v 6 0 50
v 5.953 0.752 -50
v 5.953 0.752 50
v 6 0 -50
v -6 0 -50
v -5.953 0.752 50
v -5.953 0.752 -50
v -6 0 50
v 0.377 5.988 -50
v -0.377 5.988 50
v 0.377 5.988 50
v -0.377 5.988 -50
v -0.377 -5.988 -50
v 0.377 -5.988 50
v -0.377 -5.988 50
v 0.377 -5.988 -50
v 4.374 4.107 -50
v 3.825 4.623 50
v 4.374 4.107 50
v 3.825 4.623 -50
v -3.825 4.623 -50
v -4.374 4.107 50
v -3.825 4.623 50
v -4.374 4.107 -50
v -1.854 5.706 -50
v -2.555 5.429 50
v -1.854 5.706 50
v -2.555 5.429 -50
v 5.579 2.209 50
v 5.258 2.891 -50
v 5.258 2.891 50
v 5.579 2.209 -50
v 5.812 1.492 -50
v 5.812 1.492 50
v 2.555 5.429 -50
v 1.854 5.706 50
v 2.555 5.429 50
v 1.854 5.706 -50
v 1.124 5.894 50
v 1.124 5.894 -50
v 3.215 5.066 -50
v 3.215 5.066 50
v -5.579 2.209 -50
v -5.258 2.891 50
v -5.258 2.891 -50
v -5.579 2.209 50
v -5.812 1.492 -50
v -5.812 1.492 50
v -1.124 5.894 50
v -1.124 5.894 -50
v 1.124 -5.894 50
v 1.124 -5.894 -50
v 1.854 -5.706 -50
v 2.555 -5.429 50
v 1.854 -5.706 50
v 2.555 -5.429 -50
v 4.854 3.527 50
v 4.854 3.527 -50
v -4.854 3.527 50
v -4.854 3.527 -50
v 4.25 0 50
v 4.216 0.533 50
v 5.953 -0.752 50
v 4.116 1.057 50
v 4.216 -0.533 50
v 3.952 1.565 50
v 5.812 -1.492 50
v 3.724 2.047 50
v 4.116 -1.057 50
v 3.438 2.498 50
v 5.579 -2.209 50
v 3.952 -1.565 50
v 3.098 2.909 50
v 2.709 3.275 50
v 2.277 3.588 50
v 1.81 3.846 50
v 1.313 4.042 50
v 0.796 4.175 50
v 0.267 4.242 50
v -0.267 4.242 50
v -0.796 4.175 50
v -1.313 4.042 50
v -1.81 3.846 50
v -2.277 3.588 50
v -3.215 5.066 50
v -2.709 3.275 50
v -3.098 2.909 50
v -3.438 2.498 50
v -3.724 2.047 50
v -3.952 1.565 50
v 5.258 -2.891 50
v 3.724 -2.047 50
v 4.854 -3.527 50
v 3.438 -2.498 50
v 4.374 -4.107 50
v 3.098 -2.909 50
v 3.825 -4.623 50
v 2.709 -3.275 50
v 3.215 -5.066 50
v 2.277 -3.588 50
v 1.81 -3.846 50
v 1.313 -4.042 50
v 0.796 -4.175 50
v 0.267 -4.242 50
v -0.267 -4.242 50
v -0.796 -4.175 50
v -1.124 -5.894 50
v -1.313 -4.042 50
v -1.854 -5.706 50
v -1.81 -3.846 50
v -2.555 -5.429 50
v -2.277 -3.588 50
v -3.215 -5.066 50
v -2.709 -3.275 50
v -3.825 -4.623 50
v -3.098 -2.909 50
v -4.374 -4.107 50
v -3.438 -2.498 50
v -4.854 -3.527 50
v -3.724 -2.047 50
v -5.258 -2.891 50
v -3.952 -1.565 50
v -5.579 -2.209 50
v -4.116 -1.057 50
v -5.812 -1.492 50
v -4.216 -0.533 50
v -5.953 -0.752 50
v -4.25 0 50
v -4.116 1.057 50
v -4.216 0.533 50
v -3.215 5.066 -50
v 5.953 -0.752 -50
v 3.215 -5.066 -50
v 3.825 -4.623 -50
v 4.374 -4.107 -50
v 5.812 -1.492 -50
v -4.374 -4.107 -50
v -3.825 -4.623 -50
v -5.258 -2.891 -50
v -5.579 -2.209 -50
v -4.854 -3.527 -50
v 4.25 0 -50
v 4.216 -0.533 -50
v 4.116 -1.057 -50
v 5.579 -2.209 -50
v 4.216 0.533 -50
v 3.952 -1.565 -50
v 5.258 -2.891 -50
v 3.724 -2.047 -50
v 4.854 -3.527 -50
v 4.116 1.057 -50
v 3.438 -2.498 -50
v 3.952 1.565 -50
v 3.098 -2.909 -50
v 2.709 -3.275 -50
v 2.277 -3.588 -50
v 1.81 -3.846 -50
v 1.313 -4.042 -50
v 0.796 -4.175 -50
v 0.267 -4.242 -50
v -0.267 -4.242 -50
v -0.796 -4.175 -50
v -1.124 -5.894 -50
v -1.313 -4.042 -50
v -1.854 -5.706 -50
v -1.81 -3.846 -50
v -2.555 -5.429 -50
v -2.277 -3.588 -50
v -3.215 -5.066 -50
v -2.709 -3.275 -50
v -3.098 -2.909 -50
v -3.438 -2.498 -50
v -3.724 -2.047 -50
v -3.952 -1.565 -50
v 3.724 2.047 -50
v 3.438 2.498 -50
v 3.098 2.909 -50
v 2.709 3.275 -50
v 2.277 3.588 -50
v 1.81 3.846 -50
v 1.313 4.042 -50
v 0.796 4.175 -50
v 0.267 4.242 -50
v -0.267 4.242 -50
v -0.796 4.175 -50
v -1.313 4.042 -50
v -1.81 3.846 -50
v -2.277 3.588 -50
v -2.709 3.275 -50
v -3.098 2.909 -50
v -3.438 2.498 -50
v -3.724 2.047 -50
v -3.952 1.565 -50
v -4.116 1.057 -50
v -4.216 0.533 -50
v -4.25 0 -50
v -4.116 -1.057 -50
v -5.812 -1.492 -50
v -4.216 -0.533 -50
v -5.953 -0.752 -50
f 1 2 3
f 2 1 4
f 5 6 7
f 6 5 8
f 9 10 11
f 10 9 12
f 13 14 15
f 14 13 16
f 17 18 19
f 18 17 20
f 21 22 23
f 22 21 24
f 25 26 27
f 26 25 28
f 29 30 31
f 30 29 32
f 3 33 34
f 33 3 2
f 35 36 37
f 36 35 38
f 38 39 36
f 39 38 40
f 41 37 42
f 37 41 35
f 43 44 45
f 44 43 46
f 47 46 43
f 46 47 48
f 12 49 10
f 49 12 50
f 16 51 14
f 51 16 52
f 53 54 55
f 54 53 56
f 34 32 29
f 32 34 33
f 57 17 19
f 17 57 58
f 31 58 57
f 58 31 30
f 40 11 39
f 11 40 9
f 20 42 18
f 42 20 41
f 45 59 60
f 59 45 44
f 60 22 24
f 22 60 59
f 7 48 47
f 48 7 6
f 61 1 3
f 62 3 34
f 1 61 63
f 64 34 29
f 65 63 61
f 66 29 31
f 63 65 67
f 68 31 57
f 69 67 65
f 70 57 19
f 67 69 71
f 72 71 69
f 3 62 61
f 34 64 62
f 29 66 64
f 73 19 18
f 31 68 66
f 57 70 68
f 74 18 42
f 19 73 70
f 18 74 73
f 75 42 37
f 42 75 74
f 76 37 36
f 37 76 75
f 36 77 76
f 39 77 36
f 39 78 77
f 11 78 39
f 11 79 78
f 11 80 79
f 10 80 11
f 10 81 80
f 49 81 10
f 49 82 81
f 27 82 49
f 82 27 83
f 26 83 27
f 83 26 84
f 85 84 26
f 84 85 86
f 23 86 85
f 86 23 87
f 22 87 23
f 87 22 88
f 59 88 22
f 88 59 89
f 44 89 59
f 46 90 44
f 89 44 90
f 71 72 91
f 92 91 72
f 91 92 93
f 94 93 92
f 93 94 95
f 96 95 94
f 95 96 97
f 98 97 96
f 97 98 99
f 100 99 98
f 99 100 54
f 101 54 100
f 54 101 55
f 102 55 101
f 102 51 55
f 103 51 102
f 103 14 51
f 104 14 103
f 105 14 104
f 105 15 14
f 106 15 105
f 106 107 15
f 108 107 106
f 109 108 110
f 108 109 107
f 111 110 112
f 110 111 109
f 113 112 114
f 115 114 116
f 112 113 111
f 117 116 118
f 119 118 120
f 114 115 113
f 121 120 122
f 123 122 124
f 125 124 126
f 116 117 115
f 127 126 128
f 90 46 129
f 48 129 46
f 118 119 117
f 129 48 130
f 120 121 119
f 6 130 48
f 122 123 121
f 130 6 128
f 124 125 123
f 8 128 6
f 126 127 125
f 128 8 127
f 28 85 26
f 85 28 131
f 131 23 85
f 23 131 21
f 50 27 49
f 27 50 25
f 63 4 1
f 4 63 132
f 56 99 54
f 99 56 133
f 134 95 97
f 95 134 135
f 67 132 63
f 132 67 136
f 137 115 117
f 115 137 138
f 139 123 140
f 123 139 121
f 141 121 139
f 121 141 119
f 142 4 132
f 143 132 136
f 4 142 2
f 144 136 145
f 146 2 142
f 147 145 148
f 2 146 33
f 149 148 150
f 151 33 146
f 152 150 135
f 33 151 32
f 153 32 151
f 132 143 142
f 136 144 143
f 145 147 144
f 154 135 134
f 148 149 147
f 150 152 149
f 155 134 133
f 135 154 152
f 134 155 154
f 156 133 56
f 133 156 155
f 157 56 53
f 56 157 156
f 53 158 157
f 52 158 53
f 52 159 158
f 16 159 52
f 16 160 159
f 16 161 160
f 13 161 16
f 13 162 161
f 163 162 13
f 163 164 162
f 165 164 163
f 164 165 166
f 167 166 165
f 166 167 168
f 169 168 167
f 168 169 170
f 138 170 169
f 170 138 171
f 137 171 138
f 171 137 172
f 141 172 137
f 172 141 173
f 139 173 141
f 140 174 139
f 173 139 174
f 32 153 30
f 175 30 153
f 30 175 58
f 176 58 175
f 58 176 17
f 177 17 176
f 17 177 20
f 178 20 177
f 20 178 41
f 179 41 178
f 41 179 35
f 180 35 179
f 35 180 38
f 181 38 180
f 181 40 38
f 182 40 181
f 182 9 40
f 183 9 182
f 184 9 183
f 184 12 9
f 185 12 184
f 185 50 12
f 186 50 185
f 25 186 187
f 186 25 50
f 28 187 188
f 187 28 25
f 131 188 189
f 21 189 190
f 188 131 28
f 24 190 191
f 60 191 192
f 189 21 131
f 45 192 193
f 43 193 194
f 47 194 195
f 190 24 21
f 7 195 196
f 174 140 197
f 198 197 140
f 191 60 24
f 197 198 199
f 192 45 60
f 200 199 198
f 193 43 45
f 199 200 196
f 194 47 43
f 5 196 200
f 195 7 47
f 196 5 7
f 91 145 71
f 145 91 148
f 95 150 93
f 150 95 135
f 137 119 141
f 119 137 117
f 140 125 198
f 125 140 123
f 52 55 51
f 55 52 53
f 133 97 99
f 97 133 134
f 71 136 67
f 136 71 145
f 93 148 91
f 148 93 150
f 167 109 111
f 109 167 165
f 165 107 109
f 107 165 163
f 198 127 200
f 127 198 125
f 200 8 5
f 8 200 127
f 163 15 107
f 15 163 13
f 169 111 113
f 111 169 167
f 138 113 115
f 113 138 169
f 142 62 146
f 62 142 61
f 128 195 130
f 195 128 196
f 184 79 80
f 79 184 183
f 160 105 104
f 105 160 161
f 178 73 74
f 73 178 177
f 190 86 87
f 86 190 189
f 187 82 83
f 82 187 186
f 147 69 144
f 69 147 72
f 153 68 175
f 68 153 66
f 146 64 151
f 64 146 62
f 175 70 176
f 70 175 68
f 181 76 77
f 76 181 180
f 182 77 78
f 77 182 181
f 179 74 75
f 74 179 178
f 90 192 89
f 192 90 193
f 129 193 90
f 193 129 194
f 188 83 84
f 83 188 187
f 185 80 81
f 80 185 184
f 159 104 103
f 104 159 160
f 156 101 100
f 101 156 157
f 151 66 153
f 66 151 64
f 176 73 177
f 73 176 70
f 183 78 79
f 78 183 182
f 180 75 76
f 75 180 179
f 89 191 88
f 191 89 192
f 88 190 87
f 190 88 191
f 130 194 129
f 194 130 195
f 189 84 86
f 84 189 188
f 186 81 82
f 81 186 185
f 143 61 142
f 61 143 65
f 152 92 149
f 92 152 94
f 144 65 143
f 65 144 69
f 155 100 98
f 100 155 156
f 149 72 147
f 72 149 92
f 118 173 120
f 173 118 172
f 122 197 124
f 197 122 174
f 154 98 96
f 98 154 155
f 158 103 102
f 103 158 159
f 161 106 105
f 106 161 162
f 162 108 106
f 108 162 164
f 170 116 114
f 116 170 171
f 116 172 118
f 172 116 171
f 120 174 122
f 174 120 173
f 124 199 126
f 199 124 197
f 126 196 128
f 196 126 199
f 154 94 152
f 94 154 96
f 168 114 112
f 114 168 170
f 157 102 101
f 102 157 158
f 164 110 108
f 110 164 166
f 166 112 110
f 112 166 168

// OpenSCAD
$fn = 50;


difference() {
	union() {
		translate(v = [0, 0, -50.0000000000]) {
			cylinder(h = 100, r = 6.0000000000);
		}
	}
	union() {
		translate(v = [0, 0, -100.0000000000]) {
			cylinder(h = 200, r = 4.2500000000);
		}
	}
}
